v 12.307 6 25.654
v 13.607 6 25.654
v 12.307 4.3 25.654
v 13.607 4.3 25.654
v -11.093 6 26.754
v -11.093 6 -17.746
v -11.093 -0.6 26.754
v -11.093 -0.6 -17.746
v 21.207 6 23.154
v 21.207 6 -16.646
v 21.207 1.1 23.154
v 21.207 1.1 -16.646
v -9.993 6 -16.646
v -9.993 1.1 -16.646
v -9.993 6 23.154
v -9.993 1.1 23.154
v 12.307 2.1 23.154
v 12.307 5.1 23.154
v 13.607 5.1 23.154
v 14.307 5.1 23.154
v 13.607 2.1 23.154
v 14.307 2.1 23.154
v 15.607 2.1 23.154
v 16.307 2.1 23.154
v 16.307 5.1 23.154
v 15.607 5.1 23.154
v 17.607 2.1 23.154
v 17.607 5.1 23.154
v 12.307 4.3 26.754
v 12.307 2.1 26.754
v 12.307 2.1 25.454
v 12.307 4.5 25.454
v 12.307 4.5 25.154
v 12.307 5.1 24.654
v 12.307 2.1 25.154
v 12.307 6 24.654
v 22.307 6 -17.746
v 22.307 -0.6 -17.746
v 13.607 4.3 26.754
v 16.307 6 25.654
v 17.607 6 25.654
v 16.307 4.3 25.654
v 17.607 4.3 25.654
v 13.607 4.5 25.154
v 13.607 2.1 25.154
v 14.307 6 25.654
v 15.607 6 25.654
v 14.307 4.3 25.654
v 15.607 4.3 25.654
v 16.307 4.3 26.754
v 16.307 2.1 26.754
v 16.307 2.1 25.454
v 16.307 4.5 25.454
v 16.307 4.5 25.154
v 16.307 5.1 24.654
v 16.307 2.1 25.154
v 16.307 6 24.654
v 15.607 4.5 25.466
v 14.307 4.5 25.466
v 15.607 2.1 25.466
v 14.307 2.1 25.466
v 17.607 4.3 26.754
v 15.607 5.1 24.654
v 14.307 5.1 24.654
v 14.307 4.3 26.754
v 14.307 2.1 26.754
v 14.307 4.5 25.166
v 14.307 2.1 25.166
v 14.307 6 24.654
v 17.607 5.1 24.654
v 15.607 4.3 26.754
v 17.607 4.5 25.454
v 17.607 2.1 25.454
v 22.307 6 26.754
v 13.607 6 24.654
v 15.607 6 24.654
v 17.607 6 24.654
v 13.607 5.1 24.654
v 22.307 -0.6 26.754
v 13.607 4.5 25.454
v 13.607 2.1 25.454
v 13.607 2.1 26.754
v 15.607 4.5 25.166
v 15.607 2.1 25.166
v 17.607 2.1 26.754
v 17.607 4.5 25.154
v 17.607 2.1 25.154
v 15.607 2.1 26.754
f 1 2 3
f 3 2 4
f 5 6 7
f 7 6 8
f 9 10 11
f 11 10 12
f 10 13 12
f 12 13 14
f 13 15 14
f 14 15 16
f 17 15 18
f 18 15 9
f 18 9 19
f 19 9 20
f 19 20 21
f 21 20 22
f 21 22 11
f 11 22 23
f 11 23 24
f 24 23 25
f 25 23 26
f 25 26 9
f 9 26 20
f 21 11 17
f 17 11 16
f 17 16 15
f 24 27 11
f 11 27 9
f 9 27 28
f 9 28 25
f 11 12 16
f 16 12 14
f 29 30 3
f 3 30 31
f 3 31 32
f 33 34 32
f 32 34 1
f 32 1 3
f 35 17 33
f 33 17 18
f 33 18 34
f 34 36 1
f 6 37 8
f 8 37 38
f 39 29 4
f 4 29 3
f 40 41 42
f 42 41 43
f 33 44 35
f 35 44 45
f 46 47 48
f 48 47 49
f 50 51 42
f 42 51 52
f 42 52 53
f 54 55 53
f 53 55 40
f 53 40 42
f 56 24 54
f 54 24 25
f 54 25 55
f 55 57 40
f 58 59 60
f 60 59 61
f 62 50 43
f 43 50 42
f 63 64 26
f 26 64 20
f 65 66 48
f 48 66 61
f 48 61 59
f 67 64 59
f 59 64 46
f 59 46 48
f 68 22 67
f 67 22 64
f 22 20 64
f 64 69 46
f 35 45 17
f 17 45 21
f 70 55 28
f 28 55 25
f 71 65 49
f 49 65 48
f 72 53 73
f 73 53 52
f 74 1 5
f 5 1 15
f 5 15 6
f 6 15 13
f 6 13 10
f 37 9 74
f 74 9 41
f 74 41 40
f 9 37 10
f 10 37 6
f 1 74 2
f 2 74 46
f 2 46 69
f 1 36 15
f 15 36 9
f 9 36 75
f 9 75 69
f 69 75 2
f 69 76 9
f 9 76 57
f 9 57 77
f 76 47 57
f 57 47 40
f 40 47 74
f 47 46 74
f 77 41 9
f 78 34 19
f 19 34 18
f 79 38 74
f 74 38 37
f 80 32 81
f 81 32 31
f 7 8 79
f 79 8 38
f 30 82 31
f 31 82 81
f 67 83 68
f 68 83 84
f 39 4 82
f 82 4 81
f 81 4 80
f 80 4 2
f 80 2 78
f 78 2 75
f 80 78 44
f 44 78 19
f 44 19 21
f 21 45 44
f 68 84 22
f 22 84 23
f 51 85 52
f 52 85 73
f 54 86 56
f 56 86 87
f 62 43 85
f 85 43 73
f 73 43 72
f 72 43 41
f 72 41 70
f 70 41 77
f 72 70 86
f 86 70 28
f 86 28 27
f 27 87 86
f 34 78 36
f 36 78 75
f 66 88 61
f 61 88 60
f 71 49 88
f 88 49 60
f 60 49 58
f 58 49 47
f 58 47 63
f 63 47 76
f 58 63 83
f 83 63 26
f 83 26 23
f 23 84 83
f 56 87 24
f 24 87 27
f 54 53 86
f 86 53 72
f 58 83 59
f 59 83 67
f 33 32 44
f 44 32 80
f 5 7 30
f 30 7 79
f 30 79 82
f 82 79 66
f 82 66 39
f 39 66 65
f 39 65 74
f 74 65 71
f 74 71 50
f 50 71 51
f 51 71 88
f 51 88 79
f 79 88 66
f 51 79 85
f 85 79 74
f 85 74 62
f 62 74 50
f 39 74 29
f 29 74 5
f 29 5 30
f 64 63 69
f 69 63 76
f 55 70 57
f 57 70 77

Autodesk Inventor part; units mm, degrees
ref_plane "YZ Plane" through (0, 0, 0) normal (1, 0, 0) x (0, 1, 0)
ref_plane "XZ Plane" through (0, 0, 0) normal (0, 1, 0) x (-1, 0, 0)
ref_plane "XY Plane" through (0, 0, 0) normal (0, 0, 1) x (1, 0, 0)
sketch "Sketch2" plane through (0, 0, 0) normal (0, 1, 0) x (-1, 0, 0)
  line L0 (11.0925, -17.7456) -> (-22.3075, -17.7456)
  line L1 (-22.3075, -17.7456) -> (-22.3075, 24.2544)
  line L2 (-22.3075, 24.2544) -> (11.0925, 24.2544)
  line L3 (11.0925, 24.2544) -> (11.0925, -17.7456)
  point P0 (0, 0)
  dimension "d2" = 42
  dimension "d3" = 33.4
extrude "Extrusion1" add sketch "Sketch2" along normal blind 6
sketch "Sketch3" plane through (0, 6, 0) normal (0, 1, 0) x (1, 0, 0)
  line L0 (-9.9925, 16.6456) -> (21.2075, 16.6456)
  line L1 (21.2075, 16.6456) -> (21.2075, -23.1544)
  line L2 (21.2075, -23.1544) -> (-9.9925, -23.1544)
  line L3 (-9.9925, -23.1544) -> (-9.9925, 16.6456)
  line L4 (22.3075, 17.7456) -> (-11.0925, 17.7456) projected
  line L5 (-11.0925, 17.7456) -> (-11.0925, -24.2544) projected
  line L6 (22.3075, -24.2544) -> (22.3075, 17.7456) projected
  line L7 (-11.0925, -24.2544) -> (22.3075, -24.2544) projected
  point P0 (0, 0)
  dimension "d6" = 1.1
  dimension "d7" = 1.1
  dimension "d8" = 1.1
  dimension "d9" = 1.1
  dimension "d10" = 39.8
extrude "Extrusion2" cut sketch "Sketch3" against normal blind 4.9 contours L0 L1 L2 L3
sketch "Sketch4" plane through (0, 0, 0) normal (0, -1, 0) x (1, 0, 0)
  line L0 (22.3075, -17.7456) -> (-11.0925, -17.7456) projected
  line L1 (-11.0925, -17.7456) -> (-11.0925, 24.2544) projected
  line L2 (22.3075, -17.7456) -> (-11.0925, -17.7456)
  line L3 (-11.0925, -17.7456) -> (-11.0925, 24.2544)
  line L4 (-11.0925, 24.2544) -> (22.3075, 24.2544)
  line L5 (22.3075, 24.2544) -> (22.3075, -17.7456)
  point P0 (0, 0)
extrude "Extrusion3" add sketch "Sketch4" along normal blind 0.6
sketch "Sketch5" plane through (-11.0925, 6, 24.2544) normal (0, 0, 1) x (1, 0, 0)
  line L0 (33.4, -6.6) -> (33.4, 0) projected
  line L1 (33.4, -6.6) -> (0, -6.6)
  line L2 (0, -6.6) -> (0, -2.5)
  line L3 (0, -2.5) -> (33.4, -2.5)
  line L4 (33.4, -2.5) -> (33.4, -6.6)
  point P0 (11.0925, -6)
  point P1 (33.4, -2.5)
extrude "Extrusion4" add sketch "Sketch5" along normal blind 3
sketch "Sketch6" plane through (21.2075, 6, 23.1544) normal (0, 0, -1) x (-1, 0, 0)
  line L0 (3.6, -0.9) -> (4.9, -0.9)
  line L1 (4.9, -0.9) -> (4.9, -3.9)
  line L2 (4.9, -3.9) -> (3.6, -3.9)
  line L3 (3.6, -3.9) -> (3.6, -0.9)
  line L4 (0, -4.9) -> (31.2, -4.9) projected
  line L5 (5.6, -0.9) -> (6.9, -0.9)
  line L6 (6.9, -0.9) -> (6.9, -3.9)
  line L7 (6.9, -3.9) -> (5.6, -3.9)
  line L8 (5.6, -3.9) -> (5.6, -0.9)
  line L9 (7.6, -0.9) -> (8.9, -0.9)
  line L10 (8.9, -0.9) -> (8.9, -3.9)
  line L11 (8.9, -3.9) -> (7.6, -3.9)
  line L12 (7.6, -3.9) -> (7.6, -0.9)
  point P0 (21.2075, -6)
  point P1 (0, 0)
  dimension "d17" = 3
  dimension "d18" = 1.3
  dimension "d19" = 3.6
  dimension "d20" = 1
  dimension "d23" = 3
  dimension "d24" = 1.3
  dimension "d25" = 3
  dimension "d26" = 1.3
  dimension "d27" = 1
  dimension "d28" = 1
  dimension "d29" = 0.7
  dimension "d30" = 0.7
sketch "Sketch7" plane through (-11.0925, 3.5, 24.2544) normal (0, 1, 0) x (1, 0, 0)
  line L0 (0, 0) -> (33.4, 0) projected
  line L1 (0, 42) -> (0, -3) projected
  line L2 (33.4, 0) -> (0, 0)
  line L3 (0, 0) -> (0, -3)
  line L4 (0, -3) -> (33.4, -3)
  line L5 (33.4, -3) -> (33.4, 0)
  point P0 (11.0925, 24.2544)
extrude "Extrusion5" add sketch "Sketch7" along normal blind 2.5
extrude "Extrusion6" cut sketch "Sketch6" against normal through all
sketch "Sketch8" plane through (0, 6, 0) normal (0, 1, 0) x (1, 0, 0)
  point P0 (0, 0)
sketch "Sketch9" plane through (16.3075, 2.1, 23.1544) normal (0, 1, 0) x (1, 0, 0)
  line L0 (1.3, 0) -> (1.3, -4.1) projected
  line L1 (0, 0) -> (0, -4.1) projected
  line L2 (1.3, -2.3) -> (0, -2.3)
  line L3 (0, -2.3) -> (0, -2)
  line L4 (0, -2) -> (1.3, -2)
  line L5 (1.3, -2) -> (1.3, -2.3)
  line L6 (0, 0) -> (1.3, 0) projected
  line L7 (-0.7, -2.3111) -> (-2, -2.3111)
  line L8 (-2, -2.3111) -> (-2, -2.0111)
  line L9 (-2, -2.0111) -> (-0.7, -2.0111)
  line L10 (-0.7, -2.0111) -> (-0.7, -2.3111)
  line L11 (-0.7, 0) -> (-0.7, -4.1) projected
  line L12 (-2, 0) -> (-0.7, 0) projected
  line L13 (-2.7, -2.3) -> (-4, -2.3)
  line L14 (-4, -2) -> (-2.7, -2)
  line L15 (-2.7, -2) -> (-2.7, -2.3)
  line L16 (-4, -2.3) -> (-4, -2)
  line L17 (-4, 0) -> (-2.7, 0) projected
  point P0 (-16.3075, 23.1544)
  point P1 (1.3, -2)
  point P2 (0, -2.3)
  dimension "d33" = 0.3
  dimension "d34" = 2
  dimension "d35" = 0.3
  dimension "d36" = 1.3
  dimension "d37" = 0
  dimension "d38" = 2.0111
  dimension "d39" = 0.3
  dimension "d40" = 1.3
  dimension "d41" = 0
  dimension "d42" = 2
extrude "Extrusion7" add sketch "Sketch9" along normal up to surface (3.9 mm away) contours L0 L2 L1 L4 | L7 L8 L9 L10 | L13 L16 L14 L15
sketch "Sketch10" plane through (0, 6, 0) normal (0, 1, 0) x (1, 0, 0)
  line L0 (17.6075, -25.6544) -> (16.3075, -25.6544)
  line L1 (16.3075, -25.6544) -> (16.3075, -24.6544)
  line L2 (16.3075, -24.6544) -> (17.6075, -24.6544)
  line L3 (17.6075, -24.6544) -> (17.6075, -25.6544)
  line L4 (21.2075, -23.1544) -> (-9.9925, -23.1544) projected
  line L5 (13.6075, -25.6544) -> (12.3075, -25.6544)
  line L6 (12.3075, -25.6544) -> (12.3075, -24.6544)
  line L7 (12.3075, -24.6544) -> (13.6075, -24.6544)
  line L8 (13.6075, -24.6544) -> (13.6075, -25.6544)
  line L9 (15.6075, -25.6544) -> (14.3075, -25.6544)
  line L10 (14.3075, -25.6544) -> (14.3075, -24.6544)
  line L11 (14.3075, -24.6544) -> (15.6075, -24.6544)
  line L12 (15.6075, -24.6544) -> (15.6075, -25.6544)
  line L13 (13.6075, -25.4544) -> (13.6075, -27.2544) projected
  point P0 (0, 0)
  point P1 (17.6075, -23.1544)
  point P2 (15.6075, -27.2544)
  dimension "d45" = 1.3
  dimension "d46" = 1
  dimension "d47" = 0
  dimension "d48" = 1.5
  dimension "d49" = 1.3
  dimension "d50" = 1
  dimension "d51" = 1.3
  dimension "d52" = 1
  dimension "d53" = 1.5
  dimension "d54" = 1.5
  dimension "d55" = 0
  dimension "d56" = 0
extrude "Extrusion8" cut sketch "Sketch10" against normal blind 1.5
sketch "Sketch11" plane through (-11.0925, 6, 27.2544) normal (0, 0, 1) x (1, 0, 0)
  line L0 (28.7, 0) -> (28.7, -0.9) projected
  line L1 (27.4, -3.9) -> (27.4, -0.9) projected
  line L2 (28.7, -0.9) -> (27.4, -0.9)
  line L3 (27.4, -0.9) -> (27.4, -1.7)
  line L4 (27.4, -1.7) -> (28.7, -1.7)
  line L5 (28.7, -1.7) -> (28.7, -0.9)
  line L6 (26.7, 0) -> (26.7, -0.9) projected
  line L7 (25.4, -3.9) -> (25.4, -1.5) projected
  line L8 (26.7, -0.9) -> (25.4, -0.9)
  line L9 (25.4, -0.9) -> (25.4, -1.7)
  line L10 (25.4, -1.7) -> (26.7, -1.7)
  line L11 (26.7, -1.7) -> (26.7, -0.9)
  line L12 (24.7, -0.9) -> (24.7, -3.9) projected
  line L13 (23.4, -3.9) -> (23.4, -0.9) projected
  line L14 (24.7, -0.9) -> (23.4, -0.9)
  line L15 (23.4, -0.9) -> (23.4, -1.7)
  line L16 (23.4, -1.7) -> (24.7, -1.7)
  line L17 (24.7, -1.7) -> (24.7, -0.9)
  point P0 (11.0925, -6)
  point P1 (24.7, -1.7)
  dimension "d59" = 0.8
extrude "Extrusion9" add sketch "Sketch11" against normal up to surface (1.6 mm away)
sketch "Sketch12" plane through (0, 6, 0) normal (0, 1, 0) x (1, 0, 0)
  line L0 (-11.0925, -27.2544) -> (22.3075, -27.2544) projected
  line L1 (-11.0925, 17.7456) -> (-11.0925, -27.2544) projected
  line L2 (22.3075, -27.2544) -> (-11.0925, -27.2544)
  line L3 (-11.0925, -27.2544) -> (-11.0925, -26.7544)
  line L4 (-11.0925, -26.7544) -> (22.3075, -26.7544)
  line L5 (22.3075, -26.7544) -> (22.3075, -27.2544)
  line L6 (17.6075, -25.6544) -> (16.3075, -25.6544) projected
  point P0 (0, 0)
  dimension "d62" = 1.1
extrude "Extrusion10" cut sketch "Sketch12" against normal through all
properties part number "battery-holder"
